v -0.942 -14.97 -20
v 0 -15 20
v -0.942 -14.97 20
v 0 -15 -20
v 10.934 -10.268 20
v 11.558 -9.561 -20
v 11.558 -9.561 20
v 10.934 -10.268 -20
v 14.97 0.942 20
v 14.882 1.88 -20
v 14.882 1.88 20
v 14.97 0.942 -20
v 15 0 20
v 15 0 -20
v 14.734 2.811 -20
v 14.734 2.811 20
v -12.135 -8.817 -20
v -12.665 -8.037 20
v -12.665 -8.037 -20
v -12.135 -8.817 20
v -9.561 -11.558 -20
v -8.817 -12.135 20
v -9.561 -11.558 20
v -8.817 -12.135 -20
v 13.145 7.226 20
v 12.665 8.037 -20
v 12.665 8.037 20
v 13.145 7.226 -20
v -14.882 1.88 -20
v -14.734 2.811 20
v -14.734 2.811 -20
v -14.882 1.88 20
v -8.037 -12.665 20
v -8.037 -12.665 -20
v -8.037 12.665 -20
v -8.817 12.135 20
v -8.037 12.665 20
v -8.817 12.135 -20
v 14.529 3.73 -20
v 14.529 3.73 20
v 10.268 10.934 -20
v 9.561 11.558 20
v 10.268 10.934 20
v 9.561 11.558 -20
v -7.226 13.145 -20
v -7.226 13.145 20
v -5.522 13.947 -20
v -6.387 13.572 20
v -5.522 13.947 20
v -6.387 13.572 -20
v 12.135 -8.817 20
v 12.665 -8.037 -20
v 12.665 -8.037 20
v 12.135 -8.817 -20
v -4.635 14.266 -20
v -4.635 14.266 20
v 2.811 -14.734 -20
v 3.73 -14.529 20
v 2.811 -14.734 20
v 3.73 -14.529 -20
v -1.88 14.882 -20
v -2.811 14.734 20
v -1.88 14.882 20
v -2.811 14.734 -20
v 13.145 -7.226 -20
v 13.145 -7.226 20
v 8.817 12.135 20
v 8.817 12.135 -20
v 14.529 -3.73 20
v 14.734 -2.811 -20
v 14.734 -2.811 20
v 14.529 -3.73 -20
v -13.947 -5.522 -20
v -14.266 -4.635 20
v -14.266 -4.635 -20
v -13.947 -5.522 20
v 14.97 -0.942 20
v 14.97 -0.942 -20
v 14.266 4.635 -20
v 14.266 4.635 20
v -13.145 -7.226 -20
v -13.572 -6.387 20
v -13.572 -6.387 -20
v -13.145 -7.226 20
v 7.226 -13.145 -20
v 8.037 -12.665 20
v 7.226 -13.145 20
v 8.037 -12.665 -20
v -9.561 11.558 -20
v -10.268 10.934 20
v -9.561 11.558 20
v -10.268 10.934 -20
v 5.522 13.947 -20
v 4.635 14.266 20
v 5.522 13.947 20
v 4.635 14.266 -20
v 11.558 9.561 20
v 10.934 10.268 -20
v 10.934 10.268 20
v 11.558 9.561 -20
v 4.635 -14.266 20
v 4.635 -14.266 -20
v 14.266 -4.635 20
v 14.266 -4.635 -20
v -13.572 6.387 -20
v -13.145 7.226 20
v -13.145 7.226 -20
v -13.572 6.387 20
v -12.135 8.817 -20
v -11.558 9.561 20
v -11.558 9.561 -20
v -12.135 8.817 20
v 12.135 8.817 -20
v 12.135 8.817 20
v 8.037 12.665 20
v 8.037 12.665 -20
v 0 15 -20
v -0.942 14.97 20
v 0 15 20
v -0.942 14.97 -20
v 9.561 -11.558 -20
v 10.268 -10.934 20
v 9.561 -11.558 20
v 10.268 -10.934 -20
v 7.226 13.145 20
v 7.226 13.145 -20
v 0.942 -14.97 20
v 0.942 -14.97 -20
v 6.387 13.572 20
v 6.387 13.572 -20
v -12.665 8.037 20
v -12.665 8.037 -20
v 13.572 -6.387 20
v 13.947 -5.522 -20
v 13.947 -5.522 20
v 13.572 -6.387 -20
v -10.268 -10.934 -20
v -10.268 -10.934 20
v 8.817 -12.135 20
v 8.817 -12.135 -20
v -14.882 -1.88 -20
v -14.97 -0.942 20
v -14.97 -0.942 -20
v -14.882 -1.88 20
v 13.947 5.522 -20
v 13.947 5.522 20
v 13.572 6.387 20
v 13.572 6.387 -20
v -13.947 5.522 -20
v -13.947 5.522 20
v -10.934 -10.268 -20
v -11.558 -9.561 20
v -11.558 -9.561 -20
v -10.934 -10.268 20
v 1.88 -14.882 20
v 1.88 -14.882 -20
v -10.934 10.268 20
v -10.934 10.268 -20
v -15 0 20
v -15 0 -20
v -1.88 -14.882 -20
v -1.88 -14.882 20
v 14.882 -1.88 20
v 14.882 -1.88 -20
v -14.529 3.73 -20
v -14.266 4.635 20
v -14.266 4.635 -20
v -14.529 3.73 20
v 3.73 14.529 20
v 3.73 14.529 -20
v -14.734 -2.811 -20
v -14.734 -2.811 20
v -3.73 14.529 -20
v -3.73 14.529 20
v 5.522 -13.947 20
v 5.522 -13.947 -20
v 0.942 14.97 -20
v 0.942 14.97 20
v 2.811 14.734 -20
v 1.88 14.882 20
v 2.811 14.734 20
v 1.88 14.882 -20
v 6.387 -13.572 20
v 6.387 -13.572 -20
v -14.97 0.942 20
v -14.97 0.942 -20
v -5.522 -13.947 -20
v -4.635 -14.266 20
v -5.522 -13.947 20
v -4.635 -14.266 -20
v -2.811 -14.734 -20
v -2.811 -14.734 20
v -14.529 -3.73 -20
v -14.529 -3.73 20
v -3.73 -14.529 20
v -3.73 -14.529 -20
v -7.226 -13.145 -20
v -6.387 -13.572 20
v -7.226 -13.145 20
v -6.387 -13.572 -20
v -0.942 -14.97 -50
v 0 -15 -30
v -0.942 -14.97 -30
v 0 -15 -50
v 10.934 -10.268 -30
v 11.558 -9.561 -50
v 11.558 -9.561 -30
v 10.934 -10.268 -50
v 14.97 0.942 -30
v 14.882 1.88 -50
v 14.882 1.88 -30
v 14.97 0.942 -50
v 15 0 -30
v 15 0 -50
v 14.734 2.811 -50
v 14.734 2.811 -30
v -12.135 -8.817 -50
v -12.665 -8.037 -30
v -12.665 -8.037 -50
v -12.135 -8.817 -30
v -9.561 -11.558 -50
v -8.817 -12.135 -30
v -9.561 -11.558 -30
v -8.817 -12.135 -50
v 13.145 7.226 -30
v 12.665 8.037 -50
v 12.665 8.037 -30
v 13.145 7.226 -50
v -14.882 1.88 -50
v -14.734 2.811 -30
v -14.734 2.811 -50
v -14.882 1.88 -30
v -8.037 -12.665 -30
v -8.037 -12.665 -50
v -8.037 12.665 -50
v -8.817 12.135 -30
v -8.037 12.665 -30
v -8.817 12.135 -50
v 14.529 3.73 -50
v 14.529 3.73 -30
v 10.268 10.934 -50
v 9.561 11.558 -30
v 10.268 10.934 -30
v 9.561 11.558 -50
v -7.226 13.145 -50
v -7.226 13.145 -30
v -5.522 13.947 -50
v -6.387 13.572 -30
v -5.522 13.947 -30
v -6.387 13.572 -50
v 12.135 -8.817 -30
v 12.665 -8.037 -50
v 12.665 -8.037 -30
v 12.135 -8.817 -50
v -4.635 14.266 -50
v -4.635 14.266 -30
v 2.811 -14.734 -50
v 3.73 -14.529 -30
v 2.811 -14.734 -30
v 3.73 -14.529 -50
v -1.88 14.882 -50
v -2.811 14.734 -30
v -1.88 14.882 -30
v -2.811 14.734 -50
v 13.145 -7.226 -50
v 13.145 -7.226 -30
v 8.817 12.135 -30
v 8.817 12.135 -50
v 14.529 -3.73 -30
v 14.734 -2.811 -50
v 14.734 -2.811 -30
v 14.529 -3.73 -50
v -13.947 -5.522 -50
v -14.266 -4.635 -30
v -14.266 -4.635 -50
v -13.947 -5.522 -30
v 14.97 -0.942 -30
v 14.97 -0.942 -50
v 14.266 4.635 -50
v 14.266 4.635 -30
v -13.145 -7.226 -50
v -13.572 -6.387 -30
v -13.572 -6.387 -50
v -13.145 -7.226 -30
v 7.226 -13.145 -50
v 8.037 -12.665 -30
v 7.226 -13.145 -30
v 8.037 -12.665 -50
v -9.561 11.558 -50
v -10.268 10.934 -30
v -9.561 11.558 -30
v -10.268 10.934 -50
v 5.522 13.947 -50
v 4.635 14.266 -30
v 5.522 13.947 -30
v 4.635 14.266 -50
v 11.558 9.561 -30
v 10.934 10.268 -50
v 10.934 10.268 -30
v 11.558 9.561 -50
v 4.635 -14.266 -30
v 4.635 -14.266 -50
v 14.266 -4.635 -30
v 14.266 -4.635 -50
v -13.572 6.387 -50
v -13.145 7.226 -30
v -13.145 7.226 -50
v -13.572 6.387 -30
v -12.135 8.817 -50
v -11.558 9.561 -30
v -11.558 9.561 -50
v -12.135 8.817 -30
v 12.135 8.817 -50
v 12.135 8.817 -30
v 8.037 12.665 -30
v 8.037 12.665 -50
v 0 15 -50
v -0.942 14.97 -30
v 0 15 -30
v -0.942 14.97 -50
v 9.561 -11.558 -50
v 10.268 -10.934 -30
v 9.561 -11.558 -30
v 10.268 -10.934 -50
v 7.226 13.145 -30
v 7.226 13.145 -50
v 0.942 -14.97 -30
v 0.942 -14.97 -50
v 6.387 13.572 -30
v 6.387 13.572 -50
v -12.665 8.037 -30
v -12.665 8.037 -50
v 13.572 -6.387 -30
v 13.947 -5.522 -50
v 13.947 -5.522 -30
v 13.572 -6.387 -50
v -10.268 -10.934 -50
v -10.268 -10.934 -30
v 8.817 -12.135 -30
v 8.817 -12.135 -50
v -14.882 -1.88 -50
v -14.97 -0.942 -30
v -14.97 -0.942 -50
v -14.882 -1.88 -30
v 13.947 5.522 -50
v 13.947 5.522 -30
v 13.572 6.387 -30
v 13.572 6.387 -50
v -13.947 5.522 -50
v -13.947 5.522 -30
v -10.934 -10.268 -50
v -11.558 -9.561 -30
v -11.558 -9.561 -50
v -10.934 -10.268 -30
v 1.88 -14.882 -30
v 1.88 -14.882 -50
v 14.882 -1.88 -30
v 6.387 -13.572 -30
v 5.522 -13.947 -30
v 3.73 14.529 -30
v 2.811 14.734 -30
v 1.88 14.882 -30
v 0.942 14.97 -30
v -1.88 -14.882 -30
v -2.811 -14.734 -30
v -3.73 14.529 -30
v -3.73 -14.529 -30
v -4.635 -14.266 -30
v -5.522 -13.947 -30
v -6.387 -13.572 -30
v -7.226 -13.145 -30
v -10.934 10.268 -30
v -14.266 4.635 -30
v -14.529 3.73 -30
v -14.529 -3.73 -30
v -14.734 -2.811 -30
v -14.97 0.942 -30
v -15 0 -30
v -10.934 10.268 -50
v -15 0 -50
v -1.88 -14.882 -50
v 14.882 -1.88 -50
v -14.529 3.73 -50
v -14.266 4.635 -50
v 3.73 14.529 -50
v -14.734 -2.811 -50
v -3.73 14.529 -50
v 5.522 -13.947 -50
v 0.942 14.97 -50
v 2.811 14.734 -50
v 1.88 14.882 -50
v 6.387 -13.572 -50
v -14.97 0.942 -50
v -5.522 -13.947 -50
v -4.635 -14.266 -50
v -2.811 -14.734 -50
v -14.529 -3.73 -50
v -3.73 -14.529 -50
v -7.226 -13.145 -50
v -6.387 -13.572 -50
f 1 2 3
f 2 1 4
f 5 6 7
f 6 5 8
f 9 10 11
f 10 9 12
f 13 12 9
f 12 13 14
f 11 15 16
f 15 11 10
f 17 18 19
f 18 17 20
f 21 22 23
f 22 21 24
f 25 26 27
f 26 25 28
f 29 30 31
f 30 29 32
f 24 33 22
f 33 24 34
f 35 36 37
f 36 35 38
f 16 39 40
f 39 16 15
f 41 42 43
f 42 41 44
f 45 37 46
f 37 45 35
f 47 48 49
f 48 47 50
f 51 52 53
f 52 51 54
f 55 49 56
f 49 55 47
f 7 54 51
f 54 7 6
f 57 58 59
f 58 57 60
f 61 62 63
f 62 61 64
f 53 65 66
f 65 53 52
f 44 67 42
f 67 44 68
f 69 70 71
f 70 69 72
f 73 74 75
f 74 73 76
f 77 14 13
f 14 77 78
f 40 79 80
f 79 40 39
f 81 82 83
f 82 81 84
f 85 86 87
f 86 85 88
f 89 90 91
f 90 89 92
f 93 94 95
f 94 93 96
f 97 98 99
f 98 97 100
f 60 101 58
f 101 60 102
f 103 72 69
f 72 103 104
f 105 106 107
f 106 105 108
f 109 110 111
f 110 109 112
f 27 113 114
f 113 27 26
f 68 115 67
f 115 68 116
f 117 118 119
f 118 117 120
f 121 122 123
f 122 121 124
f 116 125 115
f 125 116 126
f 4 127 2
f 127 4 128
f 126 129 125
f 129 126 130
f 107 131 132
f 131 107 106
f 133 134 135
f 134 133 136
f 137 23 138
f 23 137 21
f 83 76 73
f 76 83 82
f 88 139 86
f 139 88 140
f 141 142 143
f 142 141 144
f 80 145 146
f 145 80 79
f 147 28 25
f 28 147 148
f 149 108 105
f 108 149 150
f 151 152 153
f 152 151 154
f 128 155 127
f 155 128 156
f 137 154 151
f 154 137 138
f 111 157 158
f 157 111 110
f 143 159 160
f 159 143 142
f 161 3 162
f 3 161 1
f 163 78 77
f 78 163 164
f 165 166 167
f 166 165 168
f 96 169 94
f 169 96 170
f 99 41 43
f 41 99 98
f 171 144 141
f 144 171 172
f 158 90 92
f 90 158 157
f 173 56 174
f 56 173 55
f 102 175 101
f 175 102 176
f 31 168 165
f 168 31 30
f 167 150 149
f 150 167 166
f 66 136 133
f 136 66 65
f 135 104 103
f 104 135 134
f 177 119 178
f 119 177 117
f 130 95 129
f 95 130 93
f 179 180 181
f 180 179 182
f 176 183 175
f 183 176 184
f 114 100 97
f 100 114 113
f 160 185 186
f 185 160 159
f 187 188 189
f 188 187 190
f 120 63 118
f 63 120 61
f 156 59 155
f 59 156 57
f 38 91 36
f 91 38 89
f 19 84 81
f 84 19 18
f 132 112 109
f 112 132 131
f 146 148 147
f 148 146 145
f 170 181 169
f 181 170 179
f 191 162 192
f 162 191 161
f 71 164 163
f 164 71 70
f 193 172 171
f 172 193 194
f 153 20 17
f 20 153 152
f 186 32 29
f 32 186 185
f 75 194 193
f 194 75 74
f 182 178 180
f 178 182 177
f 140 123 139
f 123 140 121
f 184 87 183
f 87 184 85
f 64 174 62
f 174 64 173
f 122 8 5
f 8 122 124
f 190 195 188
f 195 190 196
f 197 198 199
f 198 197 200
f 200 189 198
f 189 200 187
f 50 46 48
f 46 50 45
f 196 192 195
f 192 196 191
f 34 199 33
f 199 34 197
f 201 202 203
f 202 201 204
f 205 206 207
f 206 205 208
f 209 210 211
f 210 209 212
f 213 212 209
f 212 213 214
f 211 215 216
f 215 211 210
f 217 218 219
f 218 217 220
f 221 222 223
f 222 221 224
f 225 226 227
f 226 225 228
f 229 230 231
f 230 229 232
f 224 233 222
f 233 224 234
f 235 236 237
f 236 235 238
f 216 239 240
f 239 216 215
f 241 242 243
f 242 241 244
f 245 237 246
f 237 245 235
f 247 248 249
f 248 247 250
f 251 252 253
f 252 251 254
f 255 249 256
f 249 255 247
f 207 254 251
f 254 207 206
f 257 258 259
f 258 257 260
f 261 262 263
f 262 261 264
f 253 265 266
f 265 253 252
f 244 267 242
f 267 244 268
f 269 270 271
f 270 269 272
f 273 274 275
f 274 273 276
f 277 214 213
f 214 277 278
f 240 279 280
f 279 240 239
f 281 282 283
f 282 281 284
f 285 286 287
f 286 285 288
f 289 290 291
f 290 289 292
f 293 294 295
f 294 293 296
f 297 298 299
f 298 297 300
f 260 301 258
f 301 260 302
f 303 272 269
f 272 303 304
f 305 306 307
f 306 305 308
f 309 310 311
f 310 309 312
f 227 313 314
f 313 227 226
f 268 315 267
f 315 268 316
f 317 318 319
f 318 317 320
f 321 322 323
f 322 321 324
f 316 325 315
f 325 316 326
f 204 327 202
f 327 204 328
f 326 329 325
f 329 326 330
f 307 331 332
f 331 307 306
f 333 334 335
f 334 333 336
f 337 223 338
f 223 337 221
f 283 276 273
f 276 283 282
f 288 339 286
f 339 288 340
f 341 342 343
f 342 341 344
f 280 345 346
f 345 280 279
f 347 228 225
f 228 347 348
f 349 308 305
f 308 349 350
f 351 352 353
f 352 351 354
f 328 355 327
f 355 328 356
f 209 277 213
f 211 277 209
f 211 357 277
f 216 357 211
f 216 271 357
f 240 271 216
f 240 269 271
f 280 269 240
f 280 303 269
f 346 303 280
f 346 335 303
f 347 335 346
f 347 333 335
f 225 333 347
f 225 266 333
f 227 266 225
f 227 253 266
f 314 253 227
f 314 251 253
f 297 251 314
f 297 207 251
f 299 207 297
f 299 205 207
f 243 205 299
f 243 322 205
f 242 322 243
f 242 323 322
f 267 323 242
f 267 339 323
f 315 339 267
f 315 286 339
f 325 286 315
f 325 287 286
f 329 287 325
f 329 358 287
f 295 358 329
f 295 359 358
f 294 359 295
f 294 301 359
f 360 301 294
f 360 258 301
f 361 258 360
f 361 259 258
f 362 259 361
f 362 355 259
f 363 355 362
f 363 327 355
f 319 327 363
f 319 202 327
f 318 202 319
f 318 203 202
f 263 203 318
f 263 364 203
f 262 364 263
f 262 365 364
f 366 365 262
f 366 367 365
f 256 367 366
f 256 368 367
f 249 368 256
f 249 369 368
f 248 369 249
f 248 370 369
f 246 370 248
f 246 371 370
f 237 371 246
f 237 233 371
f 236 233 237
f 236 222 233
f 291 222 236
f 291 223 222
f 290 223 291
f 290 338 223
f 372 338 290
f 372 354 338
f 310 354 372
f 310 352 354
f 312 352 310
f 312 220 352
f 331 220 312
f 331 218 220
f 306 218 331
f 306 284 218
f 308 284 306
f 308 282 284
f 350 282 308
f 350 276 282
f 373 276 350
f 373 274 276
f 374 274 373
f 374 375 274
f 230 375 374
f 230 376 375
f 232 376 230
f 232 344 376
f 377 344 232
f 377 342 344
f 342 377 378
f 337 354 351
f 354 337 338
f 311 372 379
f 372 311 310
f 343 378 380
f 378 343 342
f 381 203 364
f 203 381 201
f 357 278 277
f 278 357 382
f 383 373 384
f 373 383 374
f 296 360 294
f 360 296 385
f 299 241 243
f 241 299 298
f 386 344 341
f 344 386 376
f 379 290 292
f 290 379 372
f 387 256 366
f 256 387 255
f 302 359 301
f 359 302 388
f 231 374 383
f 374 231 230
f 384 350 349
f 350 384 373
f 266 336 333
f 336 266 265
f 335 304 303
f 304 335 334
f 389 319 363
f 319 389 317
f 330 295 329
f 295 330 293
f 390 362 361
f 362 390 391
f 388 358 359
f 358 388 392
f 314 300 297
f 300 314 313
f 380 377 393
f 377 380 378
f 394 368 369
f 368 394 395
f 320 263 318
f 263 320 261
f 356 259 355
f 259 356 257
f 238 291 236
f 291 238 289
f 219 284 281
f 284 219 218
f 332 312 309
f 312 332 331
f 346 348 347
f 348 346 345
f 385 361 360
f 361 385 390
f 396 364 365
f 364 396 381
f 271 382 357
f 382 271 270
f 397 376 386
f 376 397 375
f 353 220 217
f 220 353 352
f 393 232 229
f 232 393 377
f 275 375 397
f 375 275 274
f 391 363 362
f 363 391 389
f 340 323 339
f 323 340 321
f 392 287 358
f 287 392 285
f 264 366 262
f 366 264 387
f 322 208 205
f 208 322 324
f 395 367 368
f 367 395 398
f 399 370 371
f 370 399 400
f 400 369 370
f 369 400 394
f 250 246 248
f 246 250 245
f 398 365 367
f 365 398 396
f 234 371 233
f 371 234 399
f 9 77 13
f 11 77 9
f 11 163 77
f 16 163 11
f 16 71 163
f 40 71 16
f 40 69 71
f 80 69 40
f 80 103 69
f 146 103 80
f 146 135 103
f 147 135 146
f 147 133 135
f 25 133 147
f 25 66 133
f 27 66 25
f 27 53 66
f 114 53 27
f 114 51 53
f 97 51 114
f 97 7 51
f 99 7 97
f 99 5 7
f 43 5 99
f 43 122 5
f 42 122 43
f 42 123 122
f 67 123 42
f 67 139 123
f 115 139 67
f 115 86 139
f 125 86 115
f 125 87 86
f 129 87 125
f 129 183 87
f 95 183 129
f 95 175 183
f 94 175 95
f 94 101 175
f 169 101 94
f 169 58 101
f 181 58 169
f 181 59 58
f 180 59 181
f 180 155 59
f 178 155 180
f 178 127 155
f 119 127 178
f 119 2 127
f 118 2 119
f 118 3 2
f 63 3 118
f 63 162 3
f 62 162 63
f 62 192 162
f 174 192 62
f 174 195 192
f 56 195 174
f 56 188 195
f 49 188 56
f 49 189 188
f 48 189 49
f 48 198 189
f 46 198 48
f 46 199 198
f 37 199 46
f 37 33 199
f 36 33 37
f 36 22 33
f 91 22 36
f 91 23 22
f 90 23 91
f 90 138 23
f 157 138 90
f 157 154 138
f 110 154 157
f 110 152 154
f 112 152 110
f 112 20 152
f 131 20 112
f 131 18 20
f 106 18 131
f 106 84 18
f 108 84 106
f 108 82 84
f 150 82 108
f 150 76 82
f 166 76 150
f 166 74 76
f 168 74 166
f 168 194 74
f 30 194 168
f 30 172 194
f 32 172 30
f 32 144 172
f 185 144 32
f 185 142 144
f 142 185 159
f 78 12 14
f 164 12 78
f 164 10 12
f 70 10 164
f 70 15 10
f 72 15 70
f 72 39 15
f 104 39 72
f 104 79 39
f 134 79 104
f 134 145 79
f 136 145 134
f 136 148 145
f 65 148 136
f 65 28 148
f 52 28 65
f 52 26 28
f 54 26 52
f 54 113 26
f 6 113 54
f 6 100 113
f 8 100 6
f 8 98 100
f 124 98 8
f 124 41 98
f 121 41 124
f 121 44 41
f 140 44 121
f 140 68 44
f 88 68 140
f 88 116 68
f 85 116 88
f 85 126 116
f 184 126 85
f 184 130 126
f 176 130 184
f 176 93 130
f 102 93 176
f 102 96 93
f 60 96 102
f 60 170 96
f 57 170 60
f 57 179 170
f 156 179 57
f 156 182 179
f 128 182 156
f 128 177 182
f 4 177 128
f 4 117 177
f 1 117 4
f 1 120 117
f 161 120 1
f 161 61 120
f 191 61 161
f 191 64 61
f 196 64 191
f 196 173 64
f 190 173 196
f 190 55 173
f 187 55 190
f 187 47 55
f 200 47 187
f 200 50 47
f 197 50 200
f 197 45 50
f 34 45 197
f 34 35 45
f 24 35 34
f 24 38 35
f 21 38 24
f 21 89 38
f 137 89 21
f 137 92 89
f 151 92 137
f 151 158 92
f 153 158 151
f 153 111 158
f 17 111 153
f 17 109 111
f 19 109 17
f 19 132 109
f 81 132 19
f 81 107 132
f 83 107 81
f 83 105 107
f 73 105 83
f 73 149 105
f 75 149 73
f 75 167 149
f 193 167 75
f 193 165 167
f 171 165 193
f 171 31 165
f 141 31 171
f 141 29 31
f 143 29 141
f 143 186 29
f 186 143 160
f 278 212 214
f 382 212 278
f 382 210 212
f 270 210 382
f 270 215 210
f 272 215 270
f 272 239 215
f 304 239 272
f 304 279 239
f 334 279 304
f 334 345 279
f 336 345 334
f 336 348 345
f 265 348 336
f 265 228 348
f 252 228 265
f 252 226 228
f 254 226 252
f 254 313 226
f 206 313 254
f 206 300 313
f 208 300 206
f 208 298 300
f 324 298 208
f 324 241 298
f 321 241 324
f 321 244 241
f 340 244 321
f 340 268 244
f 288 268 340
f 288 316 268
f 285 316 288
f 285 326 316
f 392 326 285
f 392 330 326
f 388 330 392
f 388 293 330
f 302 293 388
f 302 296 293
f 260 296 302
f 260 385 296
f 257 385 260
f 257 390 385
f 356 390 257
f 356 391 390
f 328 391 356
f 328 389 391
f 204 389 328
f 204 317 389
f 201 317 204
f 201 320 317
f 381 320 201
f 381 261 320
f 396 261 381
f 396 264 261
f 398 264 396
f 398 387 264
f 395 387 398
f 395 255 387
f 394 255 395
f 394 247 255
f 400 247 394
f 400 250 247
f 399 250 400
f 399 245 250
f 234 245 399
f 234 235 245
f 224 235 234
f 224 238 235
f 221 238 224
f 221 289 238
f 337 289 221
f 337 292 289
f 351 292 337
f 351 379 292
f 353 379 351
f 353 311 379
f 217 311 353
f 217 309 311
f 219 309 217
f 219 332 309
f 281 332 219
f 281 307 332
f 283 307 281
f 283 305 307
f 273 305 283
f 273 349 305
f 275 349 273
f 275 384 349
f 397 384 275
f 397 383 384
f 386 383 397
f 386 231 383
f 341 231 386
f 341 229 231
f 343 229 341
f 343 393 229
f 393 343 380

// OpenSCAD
// Parameters for components
module central_cylinder() {
    cylinder(h = 30, r = 15, $fn = 100); // Main cylinder with smooth surface
}

module input_cylinder() {
    cylinder(h = 20, r = 15, $fn = 100); // Single, continuous cylinder
}

module output_cylinder() {
    cylinder(h = 20, r = 15, $fn = 100); // Single, continuous cylinder
}

module spacer_ring() {
    difference() {
        cylinder(h = 5, r = 15, $fn = 100); // Outer ring
        translate([0, 0, -1]) cylinder(h = 7, r = 10, $fn = 100); // Inner cutout
    }
}

module flange_plate() {
    difference() {
        cylinder(h = 5, r = 15, $fn = 100); // Outer ring
        translate([0, 0, -1]) cylinder(h = 7, r = 10, $fn = 100); // Inner cutout
        for (angle = [0:90:270]) {
            translate([12 * cos(angle), 12 * sin(angle), -1])
                cylinder(h = 7, r = 2, $fn = 50); // Bolt holes
        }
    }
}

module nut() {
    cylinder(h = 5, r = 3, $fn = 6); // Hexagonal nut
}

module bolt() {
    union() {
        cylinder(h = 20, r = 2, $fn = 50); // Bolt shaft
        translate([0, 0, 20]) cylinder(h = 2, r = 3, $fn = 50); // Bolt head
    }
}

// Assembly
module assembly() {
    translate([0, 0, 0]) input_cylinder(); // Layer 1
    translate([0, 0, -5]) flange_plate(); // Layer 2
    translate([0, 0, -10]) spacer_ring(); // Layer 3
    translate([0, 0, -15]) flange_plate(); // Layer 4
    translate([0, 0, -20]) central_cylinder(); // Layer 5
    translate([0, 0, -35]) flange_plate(); // Layer 6
    translate([0, 0, -40]) spacer_ring(); // Layer 7
    translate([0, 0, -45]) flange_plate(); // Layer 8
    translate([0, 0, -50]) output_cylinder(); // Layer 9

    // Bolts and nuts
    for (angle = [0:90:270]) {
        translate([12 * cos(angle), 12 * sin(angle), -5])
            bolt(); // Bolts in flange plates
        translate([12 * cos(angle), 12 * sin(angle), -7])
            nut(); // Nuts securing bolts
    }
}

// Render the assembly
assembly();
